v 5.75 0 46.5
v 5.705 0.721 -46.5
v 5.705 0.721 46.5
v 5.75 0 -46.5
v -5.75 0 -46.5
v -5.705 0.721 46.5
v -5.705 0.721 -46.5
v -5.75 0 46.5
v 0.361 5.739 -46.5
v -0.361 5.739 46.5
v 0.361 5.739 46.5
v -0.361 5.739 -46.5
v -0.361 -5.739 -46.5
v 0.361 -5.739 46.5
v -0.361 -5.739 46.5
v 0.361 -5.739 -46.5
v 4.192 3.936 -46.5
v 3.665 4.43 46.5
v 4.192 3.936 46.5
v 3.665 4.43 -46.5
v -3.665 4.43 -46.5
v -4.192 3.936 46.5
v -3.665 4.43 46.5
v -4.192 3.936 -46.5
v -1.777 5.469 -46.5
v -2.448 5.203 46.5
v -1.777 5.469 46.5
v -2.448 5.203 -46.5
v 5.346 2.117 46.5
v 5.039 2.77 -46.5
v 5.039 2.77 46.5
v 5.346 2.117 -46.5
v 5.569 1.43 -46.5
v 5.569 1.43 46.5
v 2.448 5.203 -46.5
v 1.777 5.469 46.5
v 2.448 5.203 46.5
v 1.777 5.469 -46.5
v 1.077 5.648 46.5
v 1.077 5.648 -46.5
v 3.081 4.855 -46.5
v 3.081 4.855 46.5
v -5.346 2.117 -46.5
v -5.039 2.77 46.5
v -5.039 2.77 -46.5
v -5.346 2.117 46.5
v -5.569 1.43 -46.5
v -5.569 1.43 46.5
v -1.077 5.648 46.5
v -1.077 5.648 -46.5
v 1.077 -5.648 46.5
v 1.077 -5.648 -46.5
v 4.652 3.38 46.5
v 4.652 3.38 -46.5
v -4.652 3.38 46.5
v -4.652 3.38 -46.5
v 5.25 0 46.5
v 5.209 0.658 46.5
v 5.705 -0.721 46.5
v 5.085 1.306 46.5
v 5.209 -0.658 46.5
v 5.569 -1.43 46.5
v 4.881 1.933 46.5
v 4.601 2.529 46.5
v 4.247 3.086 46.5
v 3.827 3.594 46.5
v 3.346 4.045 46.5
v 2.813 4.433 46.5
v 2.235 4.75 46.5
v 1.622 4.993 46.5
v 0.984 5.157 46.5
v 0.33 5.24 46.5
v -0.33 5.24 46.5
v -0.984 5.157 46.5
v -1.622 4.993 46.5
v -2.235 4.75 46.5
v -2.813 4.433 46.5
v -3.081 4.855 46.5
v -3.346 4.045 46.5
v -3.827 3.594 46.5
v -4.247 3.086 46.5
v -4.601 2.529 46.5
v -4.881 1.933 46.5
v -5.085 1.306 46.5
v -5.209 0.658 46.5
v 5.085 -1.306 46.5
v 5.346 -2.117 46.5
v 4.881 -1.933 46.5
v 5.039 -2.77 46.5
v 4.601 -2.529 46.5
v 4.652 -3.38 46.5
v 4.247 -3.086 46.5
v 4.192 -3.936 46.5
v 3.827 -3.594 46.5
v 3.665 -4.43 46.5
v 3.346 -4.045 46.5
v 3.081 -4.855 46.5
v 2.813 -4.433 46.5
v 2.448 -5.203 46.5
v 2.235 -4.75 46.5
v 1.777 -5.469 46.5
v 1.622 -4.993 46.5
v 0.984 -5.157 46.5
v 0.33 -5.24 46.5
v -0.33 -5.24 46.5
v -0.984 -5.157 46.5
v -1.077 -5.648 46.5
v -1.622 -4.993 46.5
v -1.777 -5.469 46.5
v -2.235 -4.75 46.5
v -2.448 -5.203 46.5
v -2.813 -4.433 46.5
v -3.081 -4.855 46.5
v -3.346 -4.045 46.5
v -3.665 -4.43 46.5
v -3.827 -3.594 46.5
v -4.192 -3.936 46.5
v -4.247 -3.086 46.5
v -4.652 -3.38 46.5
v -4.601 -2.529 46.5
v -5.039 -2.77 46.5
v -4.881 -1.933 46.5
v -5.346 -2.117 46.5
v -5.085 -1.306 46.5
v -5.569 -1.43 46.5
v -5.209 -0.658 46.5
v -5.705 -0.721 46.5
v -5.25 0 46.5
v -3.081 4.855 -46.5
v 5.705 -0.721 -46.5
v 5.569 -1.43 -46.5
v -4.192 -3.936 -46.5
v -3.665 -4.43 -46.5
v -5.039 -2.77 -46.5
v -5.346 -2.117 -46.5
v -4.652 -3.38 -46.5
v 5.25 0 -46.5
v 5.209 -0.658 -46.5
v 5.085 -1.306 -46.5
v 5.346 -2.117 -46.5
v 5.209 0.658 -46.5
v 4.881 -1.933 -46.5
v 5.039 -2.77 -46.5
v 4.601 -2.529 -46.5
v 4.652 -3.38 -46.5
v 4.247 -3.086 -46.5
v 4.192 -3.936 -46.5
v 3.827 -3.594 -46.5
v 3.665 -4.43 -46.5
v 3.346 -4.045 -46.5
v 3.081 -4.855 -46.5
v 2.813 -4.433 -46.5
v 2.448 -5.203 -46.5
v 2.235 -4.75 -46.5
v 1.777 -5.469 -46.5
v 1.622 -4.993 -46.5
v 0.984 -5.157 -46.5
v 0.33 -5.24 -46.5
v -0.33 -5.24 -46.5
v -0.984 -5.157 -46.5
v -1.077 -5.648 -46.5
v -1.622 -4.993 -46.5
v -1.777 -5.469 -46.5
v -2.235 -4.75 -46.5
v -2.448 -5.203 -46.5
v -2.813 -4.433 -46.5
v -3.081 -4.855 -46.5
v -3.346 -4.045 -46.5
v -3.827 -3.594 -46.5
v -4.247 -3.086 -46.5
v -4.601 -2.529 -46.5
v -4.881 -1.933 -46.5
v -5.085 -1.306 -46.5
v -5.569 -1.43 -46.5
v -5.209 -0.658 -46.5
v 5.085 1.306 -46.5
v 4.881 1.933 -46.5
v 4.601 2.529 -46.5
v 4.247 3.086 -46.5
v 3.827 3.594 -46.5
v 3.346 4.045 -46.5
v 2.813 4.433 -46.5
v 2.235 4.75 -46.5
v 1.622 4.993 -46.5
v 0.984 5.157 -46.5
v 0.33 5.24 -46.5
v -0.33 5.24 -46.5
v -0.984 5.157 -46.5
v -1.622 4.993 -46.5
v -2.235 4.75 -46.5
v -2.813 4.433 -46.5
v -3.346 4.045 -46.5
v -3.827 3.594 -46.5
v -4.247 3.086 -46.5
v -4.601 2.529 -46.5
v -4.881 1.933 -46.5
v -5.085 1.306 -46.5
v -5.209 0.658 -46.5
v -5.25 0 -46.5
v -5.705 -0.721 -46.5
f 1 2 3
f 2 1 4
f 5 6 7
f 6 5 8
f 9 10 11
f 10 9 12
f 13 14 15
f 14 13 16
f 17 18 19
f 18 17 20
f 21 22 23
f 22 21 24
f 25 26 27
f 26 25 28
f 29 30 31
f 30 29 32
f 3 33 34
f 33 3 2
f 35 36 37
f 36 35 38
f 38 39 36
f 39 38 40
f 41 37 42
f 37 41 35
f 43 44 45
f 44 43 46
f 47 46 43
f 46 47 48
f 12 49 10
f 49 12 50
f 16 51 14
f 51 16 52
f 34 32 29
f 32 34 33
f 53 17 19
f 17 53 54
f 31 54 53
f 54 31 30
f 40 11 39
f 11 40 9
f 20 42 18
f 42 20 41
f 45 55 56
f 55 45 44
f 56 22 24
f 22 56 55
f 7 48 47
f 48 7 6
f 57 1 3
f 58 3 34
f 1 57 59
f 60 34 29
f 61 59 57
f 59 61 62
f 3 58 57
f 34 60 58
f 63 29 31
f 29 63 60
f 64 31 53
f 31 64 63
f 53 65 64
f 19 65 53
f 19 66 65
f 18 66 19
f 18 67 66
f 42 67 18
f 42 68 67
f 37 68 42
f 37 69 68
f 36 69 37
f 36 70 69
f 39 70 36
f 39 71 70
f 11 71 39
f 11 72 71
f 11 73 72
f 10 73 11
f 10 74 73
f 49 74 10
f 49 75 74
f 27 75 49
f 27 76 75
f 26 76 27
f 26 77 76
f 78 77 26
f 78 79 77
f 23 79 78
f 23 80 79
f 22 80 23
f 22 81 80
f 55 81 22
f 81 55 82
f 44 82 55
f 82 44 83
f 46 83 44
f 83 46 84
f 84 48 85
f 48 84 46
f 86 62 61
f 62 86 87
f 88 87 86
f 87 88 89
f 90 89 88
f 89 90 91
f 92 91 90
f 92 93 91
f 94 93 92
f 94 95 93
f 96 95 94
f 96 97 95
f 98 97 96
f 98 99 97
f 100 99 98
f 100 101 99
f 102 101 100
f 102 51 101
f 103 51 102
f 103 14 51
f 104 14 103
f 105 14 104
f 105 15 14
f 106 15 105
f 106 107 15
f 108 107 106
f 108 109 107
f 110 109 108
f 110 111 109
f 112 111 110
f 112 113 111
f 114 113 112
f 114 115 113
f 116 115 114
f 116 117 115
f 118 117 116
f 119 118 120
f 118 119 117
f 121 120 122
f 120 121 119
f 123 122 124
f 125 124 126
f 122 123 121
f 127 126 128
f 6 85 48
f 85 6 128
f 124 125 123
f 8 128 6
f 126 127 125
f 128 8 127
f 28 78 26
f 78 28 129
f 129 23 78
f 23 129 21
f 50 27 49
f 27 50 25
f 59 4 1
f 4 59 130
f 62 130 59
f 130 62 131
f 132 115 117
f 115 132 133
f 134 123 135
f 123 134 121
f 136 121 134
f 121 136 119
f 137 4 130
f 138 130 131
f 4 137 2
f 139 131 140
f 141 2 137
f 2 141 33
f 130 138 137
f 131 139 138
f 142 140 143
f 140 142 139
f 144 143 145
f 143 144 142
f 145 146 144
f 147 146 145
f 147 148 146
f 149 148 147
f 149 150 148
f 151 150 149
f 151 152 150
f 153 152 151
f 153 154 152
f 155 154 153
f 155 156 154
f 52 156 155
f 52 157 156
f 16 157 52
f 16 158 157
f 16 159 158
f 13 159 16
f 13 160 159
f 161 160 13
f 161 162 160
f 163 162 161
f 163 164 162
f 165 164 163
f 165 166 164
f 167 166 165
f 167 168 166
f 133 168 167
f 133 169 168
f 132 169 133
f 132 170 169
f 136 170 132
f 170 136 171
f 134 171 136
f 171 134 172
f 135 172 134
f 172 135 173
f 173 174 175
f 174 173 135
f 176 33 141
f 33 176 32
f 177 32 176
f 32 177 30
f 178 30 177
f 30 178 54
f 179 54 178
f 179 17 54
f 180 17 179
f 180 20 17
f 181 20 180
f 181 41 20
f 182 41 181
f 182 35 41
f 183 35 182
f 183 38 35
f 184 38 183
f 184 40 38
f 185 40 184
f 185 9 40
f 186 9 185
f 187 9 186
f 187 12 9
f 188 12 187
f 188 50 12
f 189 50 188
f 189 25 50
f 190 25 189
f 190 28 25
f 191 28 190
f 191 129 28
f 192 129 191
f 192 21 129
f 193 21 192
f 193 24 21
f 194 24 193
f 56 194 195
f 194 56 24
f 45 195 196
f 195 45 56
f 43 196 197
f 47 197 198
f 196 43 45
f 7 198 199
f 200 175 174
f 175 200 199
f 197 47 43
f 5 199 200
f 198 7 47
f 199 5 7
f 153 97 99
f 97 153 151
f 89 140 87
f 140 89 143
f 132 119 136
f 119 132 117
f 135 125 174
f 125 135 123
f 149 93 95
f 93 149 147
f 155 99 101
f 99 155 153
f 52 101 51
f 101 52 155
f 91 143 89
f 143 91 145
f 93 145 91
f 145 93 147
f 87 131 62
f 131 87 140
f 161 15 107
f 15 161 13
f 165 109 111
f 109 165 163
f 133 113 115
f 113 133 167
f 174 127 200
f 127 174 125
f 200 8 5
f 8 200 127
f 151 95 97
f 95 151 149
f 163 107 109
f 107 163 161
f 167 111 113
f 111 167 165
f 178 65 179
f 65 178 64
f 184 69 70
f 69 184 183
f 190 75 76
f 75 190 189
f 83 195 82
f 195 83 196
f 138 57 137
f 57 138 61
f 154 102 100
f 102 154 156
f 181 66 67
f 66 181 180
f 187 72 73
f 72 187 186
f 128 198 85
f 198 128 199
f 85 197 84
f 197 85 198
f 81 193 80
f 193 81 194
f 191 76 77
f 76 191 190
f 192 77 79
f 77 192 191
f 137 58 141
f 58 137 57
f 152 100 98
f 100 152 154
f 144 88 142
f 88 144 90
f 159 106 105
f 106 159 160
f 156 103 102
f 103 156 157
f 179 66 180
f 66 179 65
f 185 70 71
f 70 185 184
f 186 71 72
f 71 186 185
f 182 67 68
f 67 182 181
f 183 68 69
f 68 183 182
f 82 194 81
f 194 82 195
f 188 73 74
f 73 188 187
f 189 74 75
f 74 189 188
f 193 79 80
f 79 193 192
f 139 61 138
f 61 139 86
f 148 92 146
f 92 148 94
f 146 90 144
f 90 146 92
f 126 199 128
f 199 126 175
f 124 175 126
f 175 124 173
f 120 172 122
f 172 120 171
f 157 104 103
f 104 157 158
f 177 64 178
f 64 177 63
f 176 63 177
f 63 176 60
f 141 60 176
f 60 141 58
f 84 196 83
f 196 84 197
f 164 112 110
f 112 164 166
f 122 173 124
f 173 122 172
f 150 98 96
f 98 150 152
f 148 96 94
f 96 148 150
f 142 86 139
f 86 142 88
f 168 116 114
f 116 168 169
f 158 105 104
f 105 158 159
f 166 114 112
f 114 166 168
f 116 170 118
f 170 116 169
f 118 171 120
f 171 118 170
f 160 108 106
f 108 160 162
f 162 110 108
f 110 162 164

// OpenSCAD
$fn = 50;


difference() {
	union() {
		translate(v = [0, 0, -46.5000000000]) {
			cylinder(h = 93, r = 5.7500000000);
		}
	}
	union() {
		translate(v = [0, 0, -100.0000000000]) {
			cylinder(h = 200, r = 5.2500000000);
		}
	}
}
